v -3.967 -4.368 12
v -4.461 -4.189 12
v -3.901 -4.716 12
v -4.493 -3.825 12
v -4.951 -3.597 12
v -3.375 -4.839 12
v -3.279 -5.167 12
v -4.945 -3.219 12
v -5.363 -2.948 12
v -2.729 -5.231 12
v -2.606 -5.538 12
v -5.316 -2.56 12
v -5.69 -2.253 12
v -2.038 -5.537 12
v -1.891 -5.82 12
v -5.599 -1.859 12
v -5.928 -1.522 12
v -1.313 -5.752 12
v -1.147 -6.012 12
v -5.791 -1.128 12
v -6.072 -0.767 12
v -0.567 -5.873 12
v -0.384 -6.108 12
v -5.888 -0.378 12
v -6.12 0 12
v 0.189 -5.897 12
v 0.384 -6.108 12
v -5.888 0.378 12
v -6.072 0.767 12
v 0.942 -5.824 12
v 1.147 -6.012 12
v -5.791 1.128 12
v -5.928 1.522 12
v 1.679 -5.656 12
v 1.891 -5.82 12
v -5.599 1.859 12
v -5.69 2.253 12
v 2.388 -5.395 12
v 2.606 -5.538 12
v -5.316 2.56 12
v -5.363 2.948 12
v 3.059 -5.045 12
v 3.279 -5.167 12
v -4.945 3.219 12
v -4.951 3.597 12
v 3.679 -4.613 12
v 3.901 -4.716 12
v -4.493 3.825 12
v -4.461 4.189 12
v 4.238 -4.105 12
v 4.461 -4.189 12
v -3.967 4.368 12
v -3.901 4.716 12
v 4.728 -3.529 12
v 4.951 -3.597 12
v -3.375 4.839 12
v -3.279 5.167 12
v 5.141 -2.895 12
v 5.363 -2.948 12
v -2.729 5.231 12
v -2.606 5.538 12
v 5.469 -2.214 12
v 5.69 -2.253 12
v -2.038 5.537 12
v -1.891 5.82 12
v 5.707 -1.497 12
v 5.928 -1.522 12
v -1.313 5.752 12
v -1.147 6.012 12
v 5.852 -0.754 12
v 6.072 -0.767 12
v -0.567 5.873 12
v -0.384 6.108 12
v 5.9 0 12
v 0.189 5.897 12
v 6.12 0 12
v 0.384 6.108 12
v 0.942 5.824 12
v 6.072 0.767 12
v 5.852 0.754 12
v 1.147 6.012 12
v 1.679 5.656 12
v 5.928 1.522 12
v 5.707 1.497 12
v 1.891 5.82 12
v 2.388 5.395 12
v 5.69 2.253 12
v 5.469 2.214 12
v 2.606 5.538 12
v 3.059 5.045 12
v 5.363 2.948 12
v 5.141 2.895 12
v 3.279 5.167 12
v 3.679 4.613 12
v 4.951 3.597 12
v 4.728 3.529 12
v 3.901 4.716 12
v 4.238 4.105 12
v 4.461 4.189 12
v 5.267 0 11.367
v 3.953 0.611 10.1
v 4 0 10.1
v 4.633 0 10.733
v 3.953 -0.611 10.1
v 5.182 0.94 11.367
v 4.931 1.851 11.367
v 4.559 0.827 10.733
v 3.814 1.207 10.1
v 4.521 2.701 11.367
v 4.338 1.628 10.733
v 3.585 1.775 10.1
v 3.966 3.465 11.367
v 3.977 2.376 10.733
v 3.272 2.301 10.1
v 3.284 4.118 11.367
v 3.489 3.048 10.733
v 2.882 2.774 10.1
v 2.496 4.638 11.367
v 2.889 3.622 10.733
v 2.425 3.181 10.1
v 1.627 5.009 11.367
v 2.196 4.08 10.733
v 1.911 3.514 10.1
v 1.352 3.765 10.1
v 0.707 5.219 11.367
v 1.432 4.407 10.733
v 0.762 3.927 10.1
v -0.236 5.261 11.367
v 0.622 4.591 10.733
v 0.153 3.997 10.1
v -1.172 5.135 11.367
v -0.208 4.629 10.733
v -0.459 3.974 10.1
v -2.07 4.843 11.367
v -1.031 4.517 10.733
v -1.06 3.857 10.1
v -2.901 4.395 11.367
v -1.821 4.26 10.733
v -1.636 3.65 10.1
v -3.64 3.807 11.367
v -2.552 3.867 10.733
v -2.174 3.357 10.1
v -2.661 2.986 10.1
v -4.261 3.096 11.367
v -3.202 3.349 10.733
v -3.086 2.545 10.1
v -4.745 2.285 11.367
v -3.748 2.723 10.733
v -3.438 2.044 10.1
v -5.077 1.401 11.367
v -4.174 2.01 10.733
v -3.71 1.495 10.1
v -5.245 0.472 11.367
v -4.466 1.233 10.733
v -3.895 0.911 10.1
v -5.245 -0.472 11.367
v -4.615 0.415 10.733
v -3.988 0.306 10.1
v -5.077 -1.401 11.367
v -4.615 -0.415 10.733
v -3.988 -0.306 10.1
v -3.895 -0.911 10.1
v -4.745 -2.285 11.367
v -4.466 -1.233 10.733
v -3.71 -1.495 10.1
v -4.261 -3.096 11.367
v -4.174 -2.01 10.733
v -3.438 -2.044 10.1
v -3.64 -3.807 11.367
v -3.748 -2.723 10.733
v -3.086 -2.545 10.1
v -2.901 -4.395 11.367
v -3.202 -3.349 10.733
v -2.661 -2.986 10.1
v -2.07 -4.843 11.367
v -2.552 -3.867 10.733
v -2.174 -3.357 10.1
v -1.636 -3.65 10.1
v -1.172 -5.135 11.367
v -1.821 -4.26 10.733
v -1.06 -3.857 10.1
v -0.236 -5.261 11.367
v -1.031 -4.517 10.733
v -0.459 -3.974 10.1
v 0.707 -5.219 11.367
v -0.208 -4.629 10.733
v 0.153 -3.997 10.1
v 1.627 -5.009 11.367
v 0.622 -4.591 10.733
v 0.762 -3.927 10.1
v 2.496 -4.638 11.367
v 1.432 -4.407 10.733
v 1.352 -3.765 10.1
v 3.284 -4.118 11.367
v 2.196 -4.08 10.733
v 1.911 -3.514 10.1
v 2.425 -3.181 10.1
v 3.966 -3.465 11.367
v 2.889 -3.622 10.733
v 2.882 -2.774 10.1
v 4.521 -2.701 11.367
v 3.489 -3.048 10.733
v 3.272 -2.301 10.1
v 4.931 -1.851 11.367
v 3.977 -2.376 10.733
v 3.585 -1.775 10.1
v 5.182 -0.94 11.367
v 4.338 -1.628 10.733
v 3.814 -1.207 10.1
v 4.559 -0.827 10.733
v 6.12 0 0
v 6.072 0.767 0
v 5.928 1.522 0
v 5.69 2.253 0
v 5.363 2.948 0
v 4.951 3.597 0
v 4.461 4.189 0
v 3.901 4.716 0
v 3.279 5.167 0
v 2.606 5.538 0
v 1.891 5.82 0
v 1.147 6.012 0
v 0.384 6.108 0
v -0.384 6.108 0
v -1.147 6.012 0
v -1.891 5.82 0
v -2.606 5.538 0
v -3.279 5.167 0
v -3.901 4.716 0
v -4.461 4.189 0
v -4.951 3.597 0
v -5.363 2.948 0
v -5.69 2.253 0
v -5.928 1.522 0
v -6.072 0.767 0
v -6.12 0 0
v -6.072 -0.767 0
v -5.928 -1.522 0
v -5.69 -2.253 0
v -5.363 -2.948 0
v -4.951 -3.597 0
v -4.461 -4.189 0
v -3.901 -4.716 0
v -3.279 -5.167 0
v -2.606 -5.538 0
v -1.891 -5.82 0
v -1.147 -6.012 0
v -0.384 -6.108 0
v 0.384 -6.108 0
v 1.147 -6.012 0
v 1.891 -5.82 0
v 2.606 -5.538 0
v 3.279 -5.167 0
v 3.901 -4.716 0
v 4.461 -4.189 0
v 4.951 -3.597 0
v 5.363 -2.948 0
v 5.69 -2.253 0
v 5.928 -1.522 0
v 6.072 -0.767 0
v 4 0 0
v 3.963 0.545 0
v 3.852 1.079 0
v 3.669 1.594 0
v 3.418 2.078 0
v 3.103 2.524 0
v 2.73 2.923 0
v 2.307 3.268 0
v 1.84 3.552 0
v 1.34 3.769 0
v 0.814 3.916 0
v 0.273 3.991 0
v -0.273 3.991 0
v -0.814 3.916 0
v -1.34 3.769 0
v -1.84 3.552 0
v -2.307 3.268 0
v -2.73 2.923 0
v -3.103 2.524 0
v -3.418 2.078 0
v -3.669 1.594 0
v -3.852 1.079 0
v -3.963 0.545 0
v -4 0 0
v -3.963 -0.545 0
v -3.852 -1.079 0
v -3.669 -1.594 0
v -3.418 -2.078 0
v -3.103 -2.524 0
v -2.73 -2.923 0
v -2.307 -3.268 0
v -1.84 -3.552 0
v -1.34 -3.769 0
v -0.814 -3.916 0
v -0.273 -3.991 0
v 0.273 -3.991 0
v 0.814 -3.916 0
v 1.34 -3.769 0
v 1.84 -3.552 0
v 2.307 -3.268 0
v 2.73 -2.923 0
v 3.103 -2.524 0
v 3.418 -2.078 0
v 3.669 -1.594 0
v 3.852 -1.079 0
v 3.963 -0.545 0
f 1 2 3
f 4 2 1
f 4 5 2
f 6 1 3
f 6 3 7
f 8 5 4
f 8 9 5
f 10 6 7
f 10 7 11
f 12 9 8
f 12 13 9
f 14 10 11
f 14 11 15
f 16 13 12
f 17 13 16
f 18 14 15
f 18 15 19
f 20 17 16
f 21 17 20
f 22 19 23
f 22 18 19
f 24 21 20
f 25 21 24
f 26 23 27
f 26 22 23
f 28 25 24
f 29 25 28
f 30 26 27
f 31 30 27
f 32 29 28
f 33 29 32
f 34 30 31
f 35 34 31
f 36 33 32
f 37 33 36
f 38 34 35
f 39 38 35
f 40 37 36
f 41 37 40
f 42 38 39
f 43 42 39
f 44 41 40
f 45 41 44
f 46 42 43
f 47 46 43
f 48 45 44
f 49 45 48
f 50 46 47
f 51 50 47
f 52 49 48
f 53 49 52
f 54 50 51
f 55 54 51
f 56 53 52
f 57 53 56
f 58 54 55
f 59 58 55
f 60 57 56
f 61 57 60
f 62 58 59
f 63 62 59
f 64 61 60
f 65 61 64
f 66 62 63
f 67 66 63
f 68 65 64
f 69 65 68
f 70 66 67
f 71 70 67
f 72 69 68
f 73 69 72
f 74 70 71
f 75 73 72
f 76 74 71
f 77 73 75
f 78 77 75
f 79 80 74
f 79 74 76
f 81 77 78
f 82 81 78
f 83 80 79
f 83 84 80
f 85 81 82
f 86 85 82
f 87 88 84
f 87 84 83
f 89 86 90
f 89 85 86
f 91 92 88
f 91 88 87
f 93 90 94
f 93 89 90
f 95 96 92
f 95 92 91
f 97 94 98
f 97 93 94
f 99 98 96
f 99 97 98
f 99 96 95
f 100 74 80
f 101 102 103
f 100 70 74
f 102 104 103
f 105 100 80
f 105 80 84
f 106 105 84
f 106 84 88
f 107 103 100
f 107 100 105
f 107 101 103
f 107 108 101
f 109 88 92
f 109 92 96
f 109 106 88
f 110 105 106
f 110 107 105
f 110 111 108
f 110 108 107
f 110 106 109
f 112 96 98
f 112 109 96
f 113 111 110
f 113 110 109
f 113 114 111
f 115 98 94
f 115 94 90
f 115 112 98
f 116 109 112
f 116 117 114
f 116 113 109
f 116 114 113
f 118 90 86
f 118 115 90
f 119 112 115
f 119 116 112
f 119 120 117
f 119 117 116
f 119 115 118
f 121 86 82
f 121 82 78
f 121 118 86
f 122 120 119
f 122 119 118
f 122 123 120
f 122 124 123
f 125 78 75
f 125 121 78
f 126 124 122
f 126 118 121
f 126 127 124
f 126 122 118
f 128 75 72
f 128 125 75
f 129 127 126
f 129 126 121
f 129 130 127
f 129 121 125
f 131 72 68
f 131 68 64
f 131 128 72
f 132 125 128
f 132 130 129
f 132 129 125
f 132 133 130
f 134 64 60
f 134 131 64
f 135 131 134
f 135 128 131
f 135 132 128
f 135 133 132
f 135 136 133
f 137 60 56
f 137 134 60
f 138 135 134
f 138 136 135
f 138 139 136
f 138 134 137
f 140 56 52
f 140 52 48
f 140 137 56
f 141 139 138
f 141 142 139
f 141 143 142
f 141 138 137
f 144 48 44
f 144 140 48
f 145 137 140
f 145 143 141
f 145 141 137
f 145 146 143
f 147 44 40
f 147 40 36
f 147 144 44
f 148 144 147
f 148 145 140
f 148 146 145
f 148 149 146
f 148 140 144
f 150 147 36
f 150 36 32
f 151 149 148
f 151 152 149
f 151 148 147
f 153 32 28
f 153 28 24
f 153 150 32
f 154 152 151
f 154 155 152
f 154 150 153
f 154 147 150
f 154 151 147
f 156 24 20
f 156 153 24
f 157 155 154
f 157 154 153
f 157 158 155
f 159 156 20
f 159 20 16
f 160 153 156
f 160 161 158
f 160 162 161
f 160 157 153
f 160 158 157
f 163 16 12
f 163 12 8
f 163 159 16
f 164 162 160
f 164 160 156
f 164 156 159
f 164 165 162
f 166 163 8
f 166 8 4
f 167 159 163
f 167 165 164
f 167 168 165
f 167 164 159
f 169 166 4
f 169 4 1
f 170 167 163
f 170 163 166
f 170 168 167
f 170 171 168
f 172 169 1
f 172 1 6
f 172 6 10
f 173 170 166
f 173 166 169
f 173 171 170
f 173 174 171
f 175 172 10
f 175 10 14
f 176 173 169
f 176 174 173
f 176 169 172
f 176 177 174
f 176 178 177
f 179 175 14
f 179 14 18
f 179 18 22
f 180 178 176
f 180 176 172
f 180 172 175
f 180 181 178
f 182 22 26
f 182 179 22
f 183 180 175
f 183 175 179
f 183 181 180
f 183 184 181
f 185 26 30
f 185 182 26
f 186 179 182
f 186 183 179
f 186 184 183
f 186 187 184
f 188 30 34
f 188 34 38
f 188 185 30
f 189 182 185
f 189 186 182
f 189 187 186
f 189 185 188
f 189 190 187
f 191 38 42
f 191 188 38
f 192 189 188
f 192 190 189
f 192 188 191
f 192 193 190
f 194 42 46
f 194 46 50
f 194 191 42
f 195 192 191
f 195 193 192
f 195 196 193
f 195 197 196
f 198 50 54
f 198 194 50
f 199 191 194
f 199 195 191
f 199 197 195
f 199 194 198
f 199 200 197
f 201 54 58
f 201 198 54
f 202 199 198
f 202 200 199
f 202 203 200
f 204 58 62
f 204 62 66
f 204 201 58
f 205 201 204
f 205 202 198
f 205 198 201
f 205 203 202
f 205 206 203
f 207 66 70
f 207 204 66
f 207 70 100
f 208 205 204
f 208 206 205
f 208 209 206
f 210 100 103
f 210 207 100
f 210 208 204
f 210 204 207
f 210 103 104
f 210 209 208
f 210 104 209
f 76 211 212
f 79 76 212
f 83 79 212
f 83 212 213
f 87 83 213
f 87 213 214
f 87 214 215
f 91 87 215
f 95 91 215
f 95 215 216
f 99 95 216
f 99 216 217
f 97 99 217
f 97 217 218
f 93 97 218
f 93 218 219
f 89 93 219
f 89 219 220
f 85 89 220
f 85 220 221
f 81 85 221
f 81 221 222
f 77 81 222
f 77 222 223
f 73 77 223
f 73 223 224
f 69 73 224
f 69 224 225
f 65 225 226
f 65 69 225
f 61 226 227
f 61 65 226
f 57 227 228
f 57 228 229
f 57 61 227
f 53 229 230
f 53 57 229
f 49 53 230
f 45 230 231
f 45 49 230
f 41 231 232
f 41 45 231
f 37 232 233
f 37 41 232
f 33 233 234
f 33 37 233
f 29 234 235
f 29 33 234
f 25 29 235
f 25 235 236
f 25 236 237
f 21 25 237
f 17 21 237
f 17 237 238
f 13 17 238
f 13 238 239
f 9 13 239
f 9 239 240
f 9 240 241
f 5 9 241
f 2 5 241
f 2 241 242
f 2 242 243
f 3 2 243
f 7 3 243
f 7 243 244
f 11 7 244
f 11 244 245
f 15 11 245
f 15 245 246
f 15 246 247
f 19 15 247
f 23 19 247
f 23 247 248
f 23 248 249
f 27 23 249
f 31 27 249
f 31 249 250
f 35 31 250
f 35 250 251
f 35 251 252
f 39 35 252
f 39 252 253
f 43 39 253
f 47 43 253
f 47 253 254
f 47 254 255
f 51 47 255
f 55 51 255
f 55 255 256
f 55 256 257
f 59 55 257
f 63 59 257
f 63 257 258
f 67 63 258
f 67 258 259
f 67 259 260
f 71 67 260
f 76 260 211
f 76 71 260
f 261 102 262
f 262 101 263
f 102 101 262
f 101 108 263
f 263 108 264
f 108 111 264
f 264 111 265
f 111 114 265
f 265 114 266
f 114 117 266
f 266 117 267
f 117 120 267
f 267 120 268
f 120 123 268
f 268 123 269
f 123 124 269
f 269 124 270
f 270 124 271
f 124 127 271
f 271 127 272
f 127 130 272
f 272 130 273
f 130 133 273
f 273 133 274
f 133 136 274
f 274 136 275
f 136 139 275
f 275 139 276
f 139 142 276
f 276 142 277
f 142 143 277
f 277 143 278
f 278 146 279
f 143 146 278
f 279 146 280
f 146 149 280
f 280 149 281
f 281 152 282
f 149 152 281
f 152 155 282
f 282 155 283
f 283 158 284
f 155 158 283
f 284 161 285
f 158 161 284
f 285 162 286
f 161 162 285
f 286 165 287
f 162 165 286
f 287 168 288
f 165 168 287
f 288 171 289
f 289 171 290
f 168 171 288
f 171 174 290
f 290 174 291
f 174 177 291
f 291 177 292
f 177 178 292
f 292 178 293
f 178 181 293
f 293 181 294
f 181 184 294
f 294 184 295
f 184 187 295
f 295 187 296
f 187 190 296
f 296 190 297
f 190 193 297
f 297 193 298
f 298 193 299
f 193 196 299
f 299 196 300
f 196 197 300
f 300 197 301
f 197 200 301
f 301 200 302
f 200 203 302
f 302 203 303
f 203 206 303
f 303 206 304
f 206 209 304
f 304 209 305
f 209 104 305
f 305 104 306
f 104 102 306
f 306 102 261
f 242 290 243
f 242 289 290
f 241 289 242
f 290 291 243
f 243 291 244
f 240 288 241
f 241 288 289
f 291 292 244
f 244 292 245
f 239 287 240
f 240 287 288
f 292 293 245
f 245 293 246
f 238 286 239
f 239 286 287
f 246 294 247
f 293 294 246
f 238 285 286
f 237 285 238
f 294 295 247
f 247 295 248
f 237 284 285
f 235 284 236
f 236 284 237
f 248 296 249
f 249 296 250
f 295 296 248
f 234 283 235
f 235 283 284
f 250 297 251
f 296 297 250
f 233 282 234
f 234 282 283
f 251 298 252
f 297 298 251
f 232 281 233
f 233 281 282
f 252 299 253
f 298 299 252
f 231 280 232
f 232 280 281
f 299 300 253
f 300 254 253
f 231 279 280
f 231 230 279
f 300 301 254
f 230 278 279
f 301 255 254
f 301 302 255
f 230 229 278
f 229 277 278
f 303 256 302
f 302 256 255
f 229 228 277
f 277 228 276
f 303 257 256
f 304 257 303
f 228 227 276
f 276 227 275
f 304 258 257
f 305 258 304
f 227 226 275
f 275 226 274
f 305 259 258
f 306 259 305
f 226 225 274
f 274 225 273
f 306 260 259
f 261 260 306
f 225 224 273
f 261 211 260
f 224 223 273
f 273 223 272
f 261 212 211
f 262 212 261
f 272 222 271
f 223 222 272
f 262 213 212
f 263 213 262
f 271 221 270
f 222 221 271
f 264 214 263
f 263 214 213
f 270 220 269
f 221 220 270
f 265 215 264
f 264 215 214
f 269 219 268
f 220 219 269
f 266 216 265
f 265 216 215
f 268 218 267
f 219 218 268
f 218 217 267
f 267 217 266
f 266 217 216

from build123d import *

# Parameters (mm, degrees)
CYLINDER001_R     = 4
CYLINDER001_DEPTH = 12
CYLINDER_R        = 6.12
CYLINDER_DEPTH    = 12
CHAMFER_SIZE      = 1.9


with BuildPart() as cilindro001:
    # Cylinder001 → Cylinder001 (new body)
    with BuildSketch(Plane.XY):
        Circle(CYLINDER001_R)
    extrude(amount=CYLINDER001_DEPTH)


with BuildPart() as chamfer_body:
    # Cylinder → Cylinder (new body)
    with BuildSketch(Plane.XY):
        Circle(CYLINDER_R)
    extrude(amount=CYLINDER_DEPTH)

    # Cut: cut Cilindro001
    add(cilindro001.part, mode=Mode.SUBTRACT)

    # Chamfer
    chamfer_edges = [chamfer_body.edges().sort_by_distance(p)[0] for p in [
        (-4, 0, 12),
    ]]
    chamfer(chamfer_edges, length=CHAMFER_SIZE)


solid = chamfer_body.part
